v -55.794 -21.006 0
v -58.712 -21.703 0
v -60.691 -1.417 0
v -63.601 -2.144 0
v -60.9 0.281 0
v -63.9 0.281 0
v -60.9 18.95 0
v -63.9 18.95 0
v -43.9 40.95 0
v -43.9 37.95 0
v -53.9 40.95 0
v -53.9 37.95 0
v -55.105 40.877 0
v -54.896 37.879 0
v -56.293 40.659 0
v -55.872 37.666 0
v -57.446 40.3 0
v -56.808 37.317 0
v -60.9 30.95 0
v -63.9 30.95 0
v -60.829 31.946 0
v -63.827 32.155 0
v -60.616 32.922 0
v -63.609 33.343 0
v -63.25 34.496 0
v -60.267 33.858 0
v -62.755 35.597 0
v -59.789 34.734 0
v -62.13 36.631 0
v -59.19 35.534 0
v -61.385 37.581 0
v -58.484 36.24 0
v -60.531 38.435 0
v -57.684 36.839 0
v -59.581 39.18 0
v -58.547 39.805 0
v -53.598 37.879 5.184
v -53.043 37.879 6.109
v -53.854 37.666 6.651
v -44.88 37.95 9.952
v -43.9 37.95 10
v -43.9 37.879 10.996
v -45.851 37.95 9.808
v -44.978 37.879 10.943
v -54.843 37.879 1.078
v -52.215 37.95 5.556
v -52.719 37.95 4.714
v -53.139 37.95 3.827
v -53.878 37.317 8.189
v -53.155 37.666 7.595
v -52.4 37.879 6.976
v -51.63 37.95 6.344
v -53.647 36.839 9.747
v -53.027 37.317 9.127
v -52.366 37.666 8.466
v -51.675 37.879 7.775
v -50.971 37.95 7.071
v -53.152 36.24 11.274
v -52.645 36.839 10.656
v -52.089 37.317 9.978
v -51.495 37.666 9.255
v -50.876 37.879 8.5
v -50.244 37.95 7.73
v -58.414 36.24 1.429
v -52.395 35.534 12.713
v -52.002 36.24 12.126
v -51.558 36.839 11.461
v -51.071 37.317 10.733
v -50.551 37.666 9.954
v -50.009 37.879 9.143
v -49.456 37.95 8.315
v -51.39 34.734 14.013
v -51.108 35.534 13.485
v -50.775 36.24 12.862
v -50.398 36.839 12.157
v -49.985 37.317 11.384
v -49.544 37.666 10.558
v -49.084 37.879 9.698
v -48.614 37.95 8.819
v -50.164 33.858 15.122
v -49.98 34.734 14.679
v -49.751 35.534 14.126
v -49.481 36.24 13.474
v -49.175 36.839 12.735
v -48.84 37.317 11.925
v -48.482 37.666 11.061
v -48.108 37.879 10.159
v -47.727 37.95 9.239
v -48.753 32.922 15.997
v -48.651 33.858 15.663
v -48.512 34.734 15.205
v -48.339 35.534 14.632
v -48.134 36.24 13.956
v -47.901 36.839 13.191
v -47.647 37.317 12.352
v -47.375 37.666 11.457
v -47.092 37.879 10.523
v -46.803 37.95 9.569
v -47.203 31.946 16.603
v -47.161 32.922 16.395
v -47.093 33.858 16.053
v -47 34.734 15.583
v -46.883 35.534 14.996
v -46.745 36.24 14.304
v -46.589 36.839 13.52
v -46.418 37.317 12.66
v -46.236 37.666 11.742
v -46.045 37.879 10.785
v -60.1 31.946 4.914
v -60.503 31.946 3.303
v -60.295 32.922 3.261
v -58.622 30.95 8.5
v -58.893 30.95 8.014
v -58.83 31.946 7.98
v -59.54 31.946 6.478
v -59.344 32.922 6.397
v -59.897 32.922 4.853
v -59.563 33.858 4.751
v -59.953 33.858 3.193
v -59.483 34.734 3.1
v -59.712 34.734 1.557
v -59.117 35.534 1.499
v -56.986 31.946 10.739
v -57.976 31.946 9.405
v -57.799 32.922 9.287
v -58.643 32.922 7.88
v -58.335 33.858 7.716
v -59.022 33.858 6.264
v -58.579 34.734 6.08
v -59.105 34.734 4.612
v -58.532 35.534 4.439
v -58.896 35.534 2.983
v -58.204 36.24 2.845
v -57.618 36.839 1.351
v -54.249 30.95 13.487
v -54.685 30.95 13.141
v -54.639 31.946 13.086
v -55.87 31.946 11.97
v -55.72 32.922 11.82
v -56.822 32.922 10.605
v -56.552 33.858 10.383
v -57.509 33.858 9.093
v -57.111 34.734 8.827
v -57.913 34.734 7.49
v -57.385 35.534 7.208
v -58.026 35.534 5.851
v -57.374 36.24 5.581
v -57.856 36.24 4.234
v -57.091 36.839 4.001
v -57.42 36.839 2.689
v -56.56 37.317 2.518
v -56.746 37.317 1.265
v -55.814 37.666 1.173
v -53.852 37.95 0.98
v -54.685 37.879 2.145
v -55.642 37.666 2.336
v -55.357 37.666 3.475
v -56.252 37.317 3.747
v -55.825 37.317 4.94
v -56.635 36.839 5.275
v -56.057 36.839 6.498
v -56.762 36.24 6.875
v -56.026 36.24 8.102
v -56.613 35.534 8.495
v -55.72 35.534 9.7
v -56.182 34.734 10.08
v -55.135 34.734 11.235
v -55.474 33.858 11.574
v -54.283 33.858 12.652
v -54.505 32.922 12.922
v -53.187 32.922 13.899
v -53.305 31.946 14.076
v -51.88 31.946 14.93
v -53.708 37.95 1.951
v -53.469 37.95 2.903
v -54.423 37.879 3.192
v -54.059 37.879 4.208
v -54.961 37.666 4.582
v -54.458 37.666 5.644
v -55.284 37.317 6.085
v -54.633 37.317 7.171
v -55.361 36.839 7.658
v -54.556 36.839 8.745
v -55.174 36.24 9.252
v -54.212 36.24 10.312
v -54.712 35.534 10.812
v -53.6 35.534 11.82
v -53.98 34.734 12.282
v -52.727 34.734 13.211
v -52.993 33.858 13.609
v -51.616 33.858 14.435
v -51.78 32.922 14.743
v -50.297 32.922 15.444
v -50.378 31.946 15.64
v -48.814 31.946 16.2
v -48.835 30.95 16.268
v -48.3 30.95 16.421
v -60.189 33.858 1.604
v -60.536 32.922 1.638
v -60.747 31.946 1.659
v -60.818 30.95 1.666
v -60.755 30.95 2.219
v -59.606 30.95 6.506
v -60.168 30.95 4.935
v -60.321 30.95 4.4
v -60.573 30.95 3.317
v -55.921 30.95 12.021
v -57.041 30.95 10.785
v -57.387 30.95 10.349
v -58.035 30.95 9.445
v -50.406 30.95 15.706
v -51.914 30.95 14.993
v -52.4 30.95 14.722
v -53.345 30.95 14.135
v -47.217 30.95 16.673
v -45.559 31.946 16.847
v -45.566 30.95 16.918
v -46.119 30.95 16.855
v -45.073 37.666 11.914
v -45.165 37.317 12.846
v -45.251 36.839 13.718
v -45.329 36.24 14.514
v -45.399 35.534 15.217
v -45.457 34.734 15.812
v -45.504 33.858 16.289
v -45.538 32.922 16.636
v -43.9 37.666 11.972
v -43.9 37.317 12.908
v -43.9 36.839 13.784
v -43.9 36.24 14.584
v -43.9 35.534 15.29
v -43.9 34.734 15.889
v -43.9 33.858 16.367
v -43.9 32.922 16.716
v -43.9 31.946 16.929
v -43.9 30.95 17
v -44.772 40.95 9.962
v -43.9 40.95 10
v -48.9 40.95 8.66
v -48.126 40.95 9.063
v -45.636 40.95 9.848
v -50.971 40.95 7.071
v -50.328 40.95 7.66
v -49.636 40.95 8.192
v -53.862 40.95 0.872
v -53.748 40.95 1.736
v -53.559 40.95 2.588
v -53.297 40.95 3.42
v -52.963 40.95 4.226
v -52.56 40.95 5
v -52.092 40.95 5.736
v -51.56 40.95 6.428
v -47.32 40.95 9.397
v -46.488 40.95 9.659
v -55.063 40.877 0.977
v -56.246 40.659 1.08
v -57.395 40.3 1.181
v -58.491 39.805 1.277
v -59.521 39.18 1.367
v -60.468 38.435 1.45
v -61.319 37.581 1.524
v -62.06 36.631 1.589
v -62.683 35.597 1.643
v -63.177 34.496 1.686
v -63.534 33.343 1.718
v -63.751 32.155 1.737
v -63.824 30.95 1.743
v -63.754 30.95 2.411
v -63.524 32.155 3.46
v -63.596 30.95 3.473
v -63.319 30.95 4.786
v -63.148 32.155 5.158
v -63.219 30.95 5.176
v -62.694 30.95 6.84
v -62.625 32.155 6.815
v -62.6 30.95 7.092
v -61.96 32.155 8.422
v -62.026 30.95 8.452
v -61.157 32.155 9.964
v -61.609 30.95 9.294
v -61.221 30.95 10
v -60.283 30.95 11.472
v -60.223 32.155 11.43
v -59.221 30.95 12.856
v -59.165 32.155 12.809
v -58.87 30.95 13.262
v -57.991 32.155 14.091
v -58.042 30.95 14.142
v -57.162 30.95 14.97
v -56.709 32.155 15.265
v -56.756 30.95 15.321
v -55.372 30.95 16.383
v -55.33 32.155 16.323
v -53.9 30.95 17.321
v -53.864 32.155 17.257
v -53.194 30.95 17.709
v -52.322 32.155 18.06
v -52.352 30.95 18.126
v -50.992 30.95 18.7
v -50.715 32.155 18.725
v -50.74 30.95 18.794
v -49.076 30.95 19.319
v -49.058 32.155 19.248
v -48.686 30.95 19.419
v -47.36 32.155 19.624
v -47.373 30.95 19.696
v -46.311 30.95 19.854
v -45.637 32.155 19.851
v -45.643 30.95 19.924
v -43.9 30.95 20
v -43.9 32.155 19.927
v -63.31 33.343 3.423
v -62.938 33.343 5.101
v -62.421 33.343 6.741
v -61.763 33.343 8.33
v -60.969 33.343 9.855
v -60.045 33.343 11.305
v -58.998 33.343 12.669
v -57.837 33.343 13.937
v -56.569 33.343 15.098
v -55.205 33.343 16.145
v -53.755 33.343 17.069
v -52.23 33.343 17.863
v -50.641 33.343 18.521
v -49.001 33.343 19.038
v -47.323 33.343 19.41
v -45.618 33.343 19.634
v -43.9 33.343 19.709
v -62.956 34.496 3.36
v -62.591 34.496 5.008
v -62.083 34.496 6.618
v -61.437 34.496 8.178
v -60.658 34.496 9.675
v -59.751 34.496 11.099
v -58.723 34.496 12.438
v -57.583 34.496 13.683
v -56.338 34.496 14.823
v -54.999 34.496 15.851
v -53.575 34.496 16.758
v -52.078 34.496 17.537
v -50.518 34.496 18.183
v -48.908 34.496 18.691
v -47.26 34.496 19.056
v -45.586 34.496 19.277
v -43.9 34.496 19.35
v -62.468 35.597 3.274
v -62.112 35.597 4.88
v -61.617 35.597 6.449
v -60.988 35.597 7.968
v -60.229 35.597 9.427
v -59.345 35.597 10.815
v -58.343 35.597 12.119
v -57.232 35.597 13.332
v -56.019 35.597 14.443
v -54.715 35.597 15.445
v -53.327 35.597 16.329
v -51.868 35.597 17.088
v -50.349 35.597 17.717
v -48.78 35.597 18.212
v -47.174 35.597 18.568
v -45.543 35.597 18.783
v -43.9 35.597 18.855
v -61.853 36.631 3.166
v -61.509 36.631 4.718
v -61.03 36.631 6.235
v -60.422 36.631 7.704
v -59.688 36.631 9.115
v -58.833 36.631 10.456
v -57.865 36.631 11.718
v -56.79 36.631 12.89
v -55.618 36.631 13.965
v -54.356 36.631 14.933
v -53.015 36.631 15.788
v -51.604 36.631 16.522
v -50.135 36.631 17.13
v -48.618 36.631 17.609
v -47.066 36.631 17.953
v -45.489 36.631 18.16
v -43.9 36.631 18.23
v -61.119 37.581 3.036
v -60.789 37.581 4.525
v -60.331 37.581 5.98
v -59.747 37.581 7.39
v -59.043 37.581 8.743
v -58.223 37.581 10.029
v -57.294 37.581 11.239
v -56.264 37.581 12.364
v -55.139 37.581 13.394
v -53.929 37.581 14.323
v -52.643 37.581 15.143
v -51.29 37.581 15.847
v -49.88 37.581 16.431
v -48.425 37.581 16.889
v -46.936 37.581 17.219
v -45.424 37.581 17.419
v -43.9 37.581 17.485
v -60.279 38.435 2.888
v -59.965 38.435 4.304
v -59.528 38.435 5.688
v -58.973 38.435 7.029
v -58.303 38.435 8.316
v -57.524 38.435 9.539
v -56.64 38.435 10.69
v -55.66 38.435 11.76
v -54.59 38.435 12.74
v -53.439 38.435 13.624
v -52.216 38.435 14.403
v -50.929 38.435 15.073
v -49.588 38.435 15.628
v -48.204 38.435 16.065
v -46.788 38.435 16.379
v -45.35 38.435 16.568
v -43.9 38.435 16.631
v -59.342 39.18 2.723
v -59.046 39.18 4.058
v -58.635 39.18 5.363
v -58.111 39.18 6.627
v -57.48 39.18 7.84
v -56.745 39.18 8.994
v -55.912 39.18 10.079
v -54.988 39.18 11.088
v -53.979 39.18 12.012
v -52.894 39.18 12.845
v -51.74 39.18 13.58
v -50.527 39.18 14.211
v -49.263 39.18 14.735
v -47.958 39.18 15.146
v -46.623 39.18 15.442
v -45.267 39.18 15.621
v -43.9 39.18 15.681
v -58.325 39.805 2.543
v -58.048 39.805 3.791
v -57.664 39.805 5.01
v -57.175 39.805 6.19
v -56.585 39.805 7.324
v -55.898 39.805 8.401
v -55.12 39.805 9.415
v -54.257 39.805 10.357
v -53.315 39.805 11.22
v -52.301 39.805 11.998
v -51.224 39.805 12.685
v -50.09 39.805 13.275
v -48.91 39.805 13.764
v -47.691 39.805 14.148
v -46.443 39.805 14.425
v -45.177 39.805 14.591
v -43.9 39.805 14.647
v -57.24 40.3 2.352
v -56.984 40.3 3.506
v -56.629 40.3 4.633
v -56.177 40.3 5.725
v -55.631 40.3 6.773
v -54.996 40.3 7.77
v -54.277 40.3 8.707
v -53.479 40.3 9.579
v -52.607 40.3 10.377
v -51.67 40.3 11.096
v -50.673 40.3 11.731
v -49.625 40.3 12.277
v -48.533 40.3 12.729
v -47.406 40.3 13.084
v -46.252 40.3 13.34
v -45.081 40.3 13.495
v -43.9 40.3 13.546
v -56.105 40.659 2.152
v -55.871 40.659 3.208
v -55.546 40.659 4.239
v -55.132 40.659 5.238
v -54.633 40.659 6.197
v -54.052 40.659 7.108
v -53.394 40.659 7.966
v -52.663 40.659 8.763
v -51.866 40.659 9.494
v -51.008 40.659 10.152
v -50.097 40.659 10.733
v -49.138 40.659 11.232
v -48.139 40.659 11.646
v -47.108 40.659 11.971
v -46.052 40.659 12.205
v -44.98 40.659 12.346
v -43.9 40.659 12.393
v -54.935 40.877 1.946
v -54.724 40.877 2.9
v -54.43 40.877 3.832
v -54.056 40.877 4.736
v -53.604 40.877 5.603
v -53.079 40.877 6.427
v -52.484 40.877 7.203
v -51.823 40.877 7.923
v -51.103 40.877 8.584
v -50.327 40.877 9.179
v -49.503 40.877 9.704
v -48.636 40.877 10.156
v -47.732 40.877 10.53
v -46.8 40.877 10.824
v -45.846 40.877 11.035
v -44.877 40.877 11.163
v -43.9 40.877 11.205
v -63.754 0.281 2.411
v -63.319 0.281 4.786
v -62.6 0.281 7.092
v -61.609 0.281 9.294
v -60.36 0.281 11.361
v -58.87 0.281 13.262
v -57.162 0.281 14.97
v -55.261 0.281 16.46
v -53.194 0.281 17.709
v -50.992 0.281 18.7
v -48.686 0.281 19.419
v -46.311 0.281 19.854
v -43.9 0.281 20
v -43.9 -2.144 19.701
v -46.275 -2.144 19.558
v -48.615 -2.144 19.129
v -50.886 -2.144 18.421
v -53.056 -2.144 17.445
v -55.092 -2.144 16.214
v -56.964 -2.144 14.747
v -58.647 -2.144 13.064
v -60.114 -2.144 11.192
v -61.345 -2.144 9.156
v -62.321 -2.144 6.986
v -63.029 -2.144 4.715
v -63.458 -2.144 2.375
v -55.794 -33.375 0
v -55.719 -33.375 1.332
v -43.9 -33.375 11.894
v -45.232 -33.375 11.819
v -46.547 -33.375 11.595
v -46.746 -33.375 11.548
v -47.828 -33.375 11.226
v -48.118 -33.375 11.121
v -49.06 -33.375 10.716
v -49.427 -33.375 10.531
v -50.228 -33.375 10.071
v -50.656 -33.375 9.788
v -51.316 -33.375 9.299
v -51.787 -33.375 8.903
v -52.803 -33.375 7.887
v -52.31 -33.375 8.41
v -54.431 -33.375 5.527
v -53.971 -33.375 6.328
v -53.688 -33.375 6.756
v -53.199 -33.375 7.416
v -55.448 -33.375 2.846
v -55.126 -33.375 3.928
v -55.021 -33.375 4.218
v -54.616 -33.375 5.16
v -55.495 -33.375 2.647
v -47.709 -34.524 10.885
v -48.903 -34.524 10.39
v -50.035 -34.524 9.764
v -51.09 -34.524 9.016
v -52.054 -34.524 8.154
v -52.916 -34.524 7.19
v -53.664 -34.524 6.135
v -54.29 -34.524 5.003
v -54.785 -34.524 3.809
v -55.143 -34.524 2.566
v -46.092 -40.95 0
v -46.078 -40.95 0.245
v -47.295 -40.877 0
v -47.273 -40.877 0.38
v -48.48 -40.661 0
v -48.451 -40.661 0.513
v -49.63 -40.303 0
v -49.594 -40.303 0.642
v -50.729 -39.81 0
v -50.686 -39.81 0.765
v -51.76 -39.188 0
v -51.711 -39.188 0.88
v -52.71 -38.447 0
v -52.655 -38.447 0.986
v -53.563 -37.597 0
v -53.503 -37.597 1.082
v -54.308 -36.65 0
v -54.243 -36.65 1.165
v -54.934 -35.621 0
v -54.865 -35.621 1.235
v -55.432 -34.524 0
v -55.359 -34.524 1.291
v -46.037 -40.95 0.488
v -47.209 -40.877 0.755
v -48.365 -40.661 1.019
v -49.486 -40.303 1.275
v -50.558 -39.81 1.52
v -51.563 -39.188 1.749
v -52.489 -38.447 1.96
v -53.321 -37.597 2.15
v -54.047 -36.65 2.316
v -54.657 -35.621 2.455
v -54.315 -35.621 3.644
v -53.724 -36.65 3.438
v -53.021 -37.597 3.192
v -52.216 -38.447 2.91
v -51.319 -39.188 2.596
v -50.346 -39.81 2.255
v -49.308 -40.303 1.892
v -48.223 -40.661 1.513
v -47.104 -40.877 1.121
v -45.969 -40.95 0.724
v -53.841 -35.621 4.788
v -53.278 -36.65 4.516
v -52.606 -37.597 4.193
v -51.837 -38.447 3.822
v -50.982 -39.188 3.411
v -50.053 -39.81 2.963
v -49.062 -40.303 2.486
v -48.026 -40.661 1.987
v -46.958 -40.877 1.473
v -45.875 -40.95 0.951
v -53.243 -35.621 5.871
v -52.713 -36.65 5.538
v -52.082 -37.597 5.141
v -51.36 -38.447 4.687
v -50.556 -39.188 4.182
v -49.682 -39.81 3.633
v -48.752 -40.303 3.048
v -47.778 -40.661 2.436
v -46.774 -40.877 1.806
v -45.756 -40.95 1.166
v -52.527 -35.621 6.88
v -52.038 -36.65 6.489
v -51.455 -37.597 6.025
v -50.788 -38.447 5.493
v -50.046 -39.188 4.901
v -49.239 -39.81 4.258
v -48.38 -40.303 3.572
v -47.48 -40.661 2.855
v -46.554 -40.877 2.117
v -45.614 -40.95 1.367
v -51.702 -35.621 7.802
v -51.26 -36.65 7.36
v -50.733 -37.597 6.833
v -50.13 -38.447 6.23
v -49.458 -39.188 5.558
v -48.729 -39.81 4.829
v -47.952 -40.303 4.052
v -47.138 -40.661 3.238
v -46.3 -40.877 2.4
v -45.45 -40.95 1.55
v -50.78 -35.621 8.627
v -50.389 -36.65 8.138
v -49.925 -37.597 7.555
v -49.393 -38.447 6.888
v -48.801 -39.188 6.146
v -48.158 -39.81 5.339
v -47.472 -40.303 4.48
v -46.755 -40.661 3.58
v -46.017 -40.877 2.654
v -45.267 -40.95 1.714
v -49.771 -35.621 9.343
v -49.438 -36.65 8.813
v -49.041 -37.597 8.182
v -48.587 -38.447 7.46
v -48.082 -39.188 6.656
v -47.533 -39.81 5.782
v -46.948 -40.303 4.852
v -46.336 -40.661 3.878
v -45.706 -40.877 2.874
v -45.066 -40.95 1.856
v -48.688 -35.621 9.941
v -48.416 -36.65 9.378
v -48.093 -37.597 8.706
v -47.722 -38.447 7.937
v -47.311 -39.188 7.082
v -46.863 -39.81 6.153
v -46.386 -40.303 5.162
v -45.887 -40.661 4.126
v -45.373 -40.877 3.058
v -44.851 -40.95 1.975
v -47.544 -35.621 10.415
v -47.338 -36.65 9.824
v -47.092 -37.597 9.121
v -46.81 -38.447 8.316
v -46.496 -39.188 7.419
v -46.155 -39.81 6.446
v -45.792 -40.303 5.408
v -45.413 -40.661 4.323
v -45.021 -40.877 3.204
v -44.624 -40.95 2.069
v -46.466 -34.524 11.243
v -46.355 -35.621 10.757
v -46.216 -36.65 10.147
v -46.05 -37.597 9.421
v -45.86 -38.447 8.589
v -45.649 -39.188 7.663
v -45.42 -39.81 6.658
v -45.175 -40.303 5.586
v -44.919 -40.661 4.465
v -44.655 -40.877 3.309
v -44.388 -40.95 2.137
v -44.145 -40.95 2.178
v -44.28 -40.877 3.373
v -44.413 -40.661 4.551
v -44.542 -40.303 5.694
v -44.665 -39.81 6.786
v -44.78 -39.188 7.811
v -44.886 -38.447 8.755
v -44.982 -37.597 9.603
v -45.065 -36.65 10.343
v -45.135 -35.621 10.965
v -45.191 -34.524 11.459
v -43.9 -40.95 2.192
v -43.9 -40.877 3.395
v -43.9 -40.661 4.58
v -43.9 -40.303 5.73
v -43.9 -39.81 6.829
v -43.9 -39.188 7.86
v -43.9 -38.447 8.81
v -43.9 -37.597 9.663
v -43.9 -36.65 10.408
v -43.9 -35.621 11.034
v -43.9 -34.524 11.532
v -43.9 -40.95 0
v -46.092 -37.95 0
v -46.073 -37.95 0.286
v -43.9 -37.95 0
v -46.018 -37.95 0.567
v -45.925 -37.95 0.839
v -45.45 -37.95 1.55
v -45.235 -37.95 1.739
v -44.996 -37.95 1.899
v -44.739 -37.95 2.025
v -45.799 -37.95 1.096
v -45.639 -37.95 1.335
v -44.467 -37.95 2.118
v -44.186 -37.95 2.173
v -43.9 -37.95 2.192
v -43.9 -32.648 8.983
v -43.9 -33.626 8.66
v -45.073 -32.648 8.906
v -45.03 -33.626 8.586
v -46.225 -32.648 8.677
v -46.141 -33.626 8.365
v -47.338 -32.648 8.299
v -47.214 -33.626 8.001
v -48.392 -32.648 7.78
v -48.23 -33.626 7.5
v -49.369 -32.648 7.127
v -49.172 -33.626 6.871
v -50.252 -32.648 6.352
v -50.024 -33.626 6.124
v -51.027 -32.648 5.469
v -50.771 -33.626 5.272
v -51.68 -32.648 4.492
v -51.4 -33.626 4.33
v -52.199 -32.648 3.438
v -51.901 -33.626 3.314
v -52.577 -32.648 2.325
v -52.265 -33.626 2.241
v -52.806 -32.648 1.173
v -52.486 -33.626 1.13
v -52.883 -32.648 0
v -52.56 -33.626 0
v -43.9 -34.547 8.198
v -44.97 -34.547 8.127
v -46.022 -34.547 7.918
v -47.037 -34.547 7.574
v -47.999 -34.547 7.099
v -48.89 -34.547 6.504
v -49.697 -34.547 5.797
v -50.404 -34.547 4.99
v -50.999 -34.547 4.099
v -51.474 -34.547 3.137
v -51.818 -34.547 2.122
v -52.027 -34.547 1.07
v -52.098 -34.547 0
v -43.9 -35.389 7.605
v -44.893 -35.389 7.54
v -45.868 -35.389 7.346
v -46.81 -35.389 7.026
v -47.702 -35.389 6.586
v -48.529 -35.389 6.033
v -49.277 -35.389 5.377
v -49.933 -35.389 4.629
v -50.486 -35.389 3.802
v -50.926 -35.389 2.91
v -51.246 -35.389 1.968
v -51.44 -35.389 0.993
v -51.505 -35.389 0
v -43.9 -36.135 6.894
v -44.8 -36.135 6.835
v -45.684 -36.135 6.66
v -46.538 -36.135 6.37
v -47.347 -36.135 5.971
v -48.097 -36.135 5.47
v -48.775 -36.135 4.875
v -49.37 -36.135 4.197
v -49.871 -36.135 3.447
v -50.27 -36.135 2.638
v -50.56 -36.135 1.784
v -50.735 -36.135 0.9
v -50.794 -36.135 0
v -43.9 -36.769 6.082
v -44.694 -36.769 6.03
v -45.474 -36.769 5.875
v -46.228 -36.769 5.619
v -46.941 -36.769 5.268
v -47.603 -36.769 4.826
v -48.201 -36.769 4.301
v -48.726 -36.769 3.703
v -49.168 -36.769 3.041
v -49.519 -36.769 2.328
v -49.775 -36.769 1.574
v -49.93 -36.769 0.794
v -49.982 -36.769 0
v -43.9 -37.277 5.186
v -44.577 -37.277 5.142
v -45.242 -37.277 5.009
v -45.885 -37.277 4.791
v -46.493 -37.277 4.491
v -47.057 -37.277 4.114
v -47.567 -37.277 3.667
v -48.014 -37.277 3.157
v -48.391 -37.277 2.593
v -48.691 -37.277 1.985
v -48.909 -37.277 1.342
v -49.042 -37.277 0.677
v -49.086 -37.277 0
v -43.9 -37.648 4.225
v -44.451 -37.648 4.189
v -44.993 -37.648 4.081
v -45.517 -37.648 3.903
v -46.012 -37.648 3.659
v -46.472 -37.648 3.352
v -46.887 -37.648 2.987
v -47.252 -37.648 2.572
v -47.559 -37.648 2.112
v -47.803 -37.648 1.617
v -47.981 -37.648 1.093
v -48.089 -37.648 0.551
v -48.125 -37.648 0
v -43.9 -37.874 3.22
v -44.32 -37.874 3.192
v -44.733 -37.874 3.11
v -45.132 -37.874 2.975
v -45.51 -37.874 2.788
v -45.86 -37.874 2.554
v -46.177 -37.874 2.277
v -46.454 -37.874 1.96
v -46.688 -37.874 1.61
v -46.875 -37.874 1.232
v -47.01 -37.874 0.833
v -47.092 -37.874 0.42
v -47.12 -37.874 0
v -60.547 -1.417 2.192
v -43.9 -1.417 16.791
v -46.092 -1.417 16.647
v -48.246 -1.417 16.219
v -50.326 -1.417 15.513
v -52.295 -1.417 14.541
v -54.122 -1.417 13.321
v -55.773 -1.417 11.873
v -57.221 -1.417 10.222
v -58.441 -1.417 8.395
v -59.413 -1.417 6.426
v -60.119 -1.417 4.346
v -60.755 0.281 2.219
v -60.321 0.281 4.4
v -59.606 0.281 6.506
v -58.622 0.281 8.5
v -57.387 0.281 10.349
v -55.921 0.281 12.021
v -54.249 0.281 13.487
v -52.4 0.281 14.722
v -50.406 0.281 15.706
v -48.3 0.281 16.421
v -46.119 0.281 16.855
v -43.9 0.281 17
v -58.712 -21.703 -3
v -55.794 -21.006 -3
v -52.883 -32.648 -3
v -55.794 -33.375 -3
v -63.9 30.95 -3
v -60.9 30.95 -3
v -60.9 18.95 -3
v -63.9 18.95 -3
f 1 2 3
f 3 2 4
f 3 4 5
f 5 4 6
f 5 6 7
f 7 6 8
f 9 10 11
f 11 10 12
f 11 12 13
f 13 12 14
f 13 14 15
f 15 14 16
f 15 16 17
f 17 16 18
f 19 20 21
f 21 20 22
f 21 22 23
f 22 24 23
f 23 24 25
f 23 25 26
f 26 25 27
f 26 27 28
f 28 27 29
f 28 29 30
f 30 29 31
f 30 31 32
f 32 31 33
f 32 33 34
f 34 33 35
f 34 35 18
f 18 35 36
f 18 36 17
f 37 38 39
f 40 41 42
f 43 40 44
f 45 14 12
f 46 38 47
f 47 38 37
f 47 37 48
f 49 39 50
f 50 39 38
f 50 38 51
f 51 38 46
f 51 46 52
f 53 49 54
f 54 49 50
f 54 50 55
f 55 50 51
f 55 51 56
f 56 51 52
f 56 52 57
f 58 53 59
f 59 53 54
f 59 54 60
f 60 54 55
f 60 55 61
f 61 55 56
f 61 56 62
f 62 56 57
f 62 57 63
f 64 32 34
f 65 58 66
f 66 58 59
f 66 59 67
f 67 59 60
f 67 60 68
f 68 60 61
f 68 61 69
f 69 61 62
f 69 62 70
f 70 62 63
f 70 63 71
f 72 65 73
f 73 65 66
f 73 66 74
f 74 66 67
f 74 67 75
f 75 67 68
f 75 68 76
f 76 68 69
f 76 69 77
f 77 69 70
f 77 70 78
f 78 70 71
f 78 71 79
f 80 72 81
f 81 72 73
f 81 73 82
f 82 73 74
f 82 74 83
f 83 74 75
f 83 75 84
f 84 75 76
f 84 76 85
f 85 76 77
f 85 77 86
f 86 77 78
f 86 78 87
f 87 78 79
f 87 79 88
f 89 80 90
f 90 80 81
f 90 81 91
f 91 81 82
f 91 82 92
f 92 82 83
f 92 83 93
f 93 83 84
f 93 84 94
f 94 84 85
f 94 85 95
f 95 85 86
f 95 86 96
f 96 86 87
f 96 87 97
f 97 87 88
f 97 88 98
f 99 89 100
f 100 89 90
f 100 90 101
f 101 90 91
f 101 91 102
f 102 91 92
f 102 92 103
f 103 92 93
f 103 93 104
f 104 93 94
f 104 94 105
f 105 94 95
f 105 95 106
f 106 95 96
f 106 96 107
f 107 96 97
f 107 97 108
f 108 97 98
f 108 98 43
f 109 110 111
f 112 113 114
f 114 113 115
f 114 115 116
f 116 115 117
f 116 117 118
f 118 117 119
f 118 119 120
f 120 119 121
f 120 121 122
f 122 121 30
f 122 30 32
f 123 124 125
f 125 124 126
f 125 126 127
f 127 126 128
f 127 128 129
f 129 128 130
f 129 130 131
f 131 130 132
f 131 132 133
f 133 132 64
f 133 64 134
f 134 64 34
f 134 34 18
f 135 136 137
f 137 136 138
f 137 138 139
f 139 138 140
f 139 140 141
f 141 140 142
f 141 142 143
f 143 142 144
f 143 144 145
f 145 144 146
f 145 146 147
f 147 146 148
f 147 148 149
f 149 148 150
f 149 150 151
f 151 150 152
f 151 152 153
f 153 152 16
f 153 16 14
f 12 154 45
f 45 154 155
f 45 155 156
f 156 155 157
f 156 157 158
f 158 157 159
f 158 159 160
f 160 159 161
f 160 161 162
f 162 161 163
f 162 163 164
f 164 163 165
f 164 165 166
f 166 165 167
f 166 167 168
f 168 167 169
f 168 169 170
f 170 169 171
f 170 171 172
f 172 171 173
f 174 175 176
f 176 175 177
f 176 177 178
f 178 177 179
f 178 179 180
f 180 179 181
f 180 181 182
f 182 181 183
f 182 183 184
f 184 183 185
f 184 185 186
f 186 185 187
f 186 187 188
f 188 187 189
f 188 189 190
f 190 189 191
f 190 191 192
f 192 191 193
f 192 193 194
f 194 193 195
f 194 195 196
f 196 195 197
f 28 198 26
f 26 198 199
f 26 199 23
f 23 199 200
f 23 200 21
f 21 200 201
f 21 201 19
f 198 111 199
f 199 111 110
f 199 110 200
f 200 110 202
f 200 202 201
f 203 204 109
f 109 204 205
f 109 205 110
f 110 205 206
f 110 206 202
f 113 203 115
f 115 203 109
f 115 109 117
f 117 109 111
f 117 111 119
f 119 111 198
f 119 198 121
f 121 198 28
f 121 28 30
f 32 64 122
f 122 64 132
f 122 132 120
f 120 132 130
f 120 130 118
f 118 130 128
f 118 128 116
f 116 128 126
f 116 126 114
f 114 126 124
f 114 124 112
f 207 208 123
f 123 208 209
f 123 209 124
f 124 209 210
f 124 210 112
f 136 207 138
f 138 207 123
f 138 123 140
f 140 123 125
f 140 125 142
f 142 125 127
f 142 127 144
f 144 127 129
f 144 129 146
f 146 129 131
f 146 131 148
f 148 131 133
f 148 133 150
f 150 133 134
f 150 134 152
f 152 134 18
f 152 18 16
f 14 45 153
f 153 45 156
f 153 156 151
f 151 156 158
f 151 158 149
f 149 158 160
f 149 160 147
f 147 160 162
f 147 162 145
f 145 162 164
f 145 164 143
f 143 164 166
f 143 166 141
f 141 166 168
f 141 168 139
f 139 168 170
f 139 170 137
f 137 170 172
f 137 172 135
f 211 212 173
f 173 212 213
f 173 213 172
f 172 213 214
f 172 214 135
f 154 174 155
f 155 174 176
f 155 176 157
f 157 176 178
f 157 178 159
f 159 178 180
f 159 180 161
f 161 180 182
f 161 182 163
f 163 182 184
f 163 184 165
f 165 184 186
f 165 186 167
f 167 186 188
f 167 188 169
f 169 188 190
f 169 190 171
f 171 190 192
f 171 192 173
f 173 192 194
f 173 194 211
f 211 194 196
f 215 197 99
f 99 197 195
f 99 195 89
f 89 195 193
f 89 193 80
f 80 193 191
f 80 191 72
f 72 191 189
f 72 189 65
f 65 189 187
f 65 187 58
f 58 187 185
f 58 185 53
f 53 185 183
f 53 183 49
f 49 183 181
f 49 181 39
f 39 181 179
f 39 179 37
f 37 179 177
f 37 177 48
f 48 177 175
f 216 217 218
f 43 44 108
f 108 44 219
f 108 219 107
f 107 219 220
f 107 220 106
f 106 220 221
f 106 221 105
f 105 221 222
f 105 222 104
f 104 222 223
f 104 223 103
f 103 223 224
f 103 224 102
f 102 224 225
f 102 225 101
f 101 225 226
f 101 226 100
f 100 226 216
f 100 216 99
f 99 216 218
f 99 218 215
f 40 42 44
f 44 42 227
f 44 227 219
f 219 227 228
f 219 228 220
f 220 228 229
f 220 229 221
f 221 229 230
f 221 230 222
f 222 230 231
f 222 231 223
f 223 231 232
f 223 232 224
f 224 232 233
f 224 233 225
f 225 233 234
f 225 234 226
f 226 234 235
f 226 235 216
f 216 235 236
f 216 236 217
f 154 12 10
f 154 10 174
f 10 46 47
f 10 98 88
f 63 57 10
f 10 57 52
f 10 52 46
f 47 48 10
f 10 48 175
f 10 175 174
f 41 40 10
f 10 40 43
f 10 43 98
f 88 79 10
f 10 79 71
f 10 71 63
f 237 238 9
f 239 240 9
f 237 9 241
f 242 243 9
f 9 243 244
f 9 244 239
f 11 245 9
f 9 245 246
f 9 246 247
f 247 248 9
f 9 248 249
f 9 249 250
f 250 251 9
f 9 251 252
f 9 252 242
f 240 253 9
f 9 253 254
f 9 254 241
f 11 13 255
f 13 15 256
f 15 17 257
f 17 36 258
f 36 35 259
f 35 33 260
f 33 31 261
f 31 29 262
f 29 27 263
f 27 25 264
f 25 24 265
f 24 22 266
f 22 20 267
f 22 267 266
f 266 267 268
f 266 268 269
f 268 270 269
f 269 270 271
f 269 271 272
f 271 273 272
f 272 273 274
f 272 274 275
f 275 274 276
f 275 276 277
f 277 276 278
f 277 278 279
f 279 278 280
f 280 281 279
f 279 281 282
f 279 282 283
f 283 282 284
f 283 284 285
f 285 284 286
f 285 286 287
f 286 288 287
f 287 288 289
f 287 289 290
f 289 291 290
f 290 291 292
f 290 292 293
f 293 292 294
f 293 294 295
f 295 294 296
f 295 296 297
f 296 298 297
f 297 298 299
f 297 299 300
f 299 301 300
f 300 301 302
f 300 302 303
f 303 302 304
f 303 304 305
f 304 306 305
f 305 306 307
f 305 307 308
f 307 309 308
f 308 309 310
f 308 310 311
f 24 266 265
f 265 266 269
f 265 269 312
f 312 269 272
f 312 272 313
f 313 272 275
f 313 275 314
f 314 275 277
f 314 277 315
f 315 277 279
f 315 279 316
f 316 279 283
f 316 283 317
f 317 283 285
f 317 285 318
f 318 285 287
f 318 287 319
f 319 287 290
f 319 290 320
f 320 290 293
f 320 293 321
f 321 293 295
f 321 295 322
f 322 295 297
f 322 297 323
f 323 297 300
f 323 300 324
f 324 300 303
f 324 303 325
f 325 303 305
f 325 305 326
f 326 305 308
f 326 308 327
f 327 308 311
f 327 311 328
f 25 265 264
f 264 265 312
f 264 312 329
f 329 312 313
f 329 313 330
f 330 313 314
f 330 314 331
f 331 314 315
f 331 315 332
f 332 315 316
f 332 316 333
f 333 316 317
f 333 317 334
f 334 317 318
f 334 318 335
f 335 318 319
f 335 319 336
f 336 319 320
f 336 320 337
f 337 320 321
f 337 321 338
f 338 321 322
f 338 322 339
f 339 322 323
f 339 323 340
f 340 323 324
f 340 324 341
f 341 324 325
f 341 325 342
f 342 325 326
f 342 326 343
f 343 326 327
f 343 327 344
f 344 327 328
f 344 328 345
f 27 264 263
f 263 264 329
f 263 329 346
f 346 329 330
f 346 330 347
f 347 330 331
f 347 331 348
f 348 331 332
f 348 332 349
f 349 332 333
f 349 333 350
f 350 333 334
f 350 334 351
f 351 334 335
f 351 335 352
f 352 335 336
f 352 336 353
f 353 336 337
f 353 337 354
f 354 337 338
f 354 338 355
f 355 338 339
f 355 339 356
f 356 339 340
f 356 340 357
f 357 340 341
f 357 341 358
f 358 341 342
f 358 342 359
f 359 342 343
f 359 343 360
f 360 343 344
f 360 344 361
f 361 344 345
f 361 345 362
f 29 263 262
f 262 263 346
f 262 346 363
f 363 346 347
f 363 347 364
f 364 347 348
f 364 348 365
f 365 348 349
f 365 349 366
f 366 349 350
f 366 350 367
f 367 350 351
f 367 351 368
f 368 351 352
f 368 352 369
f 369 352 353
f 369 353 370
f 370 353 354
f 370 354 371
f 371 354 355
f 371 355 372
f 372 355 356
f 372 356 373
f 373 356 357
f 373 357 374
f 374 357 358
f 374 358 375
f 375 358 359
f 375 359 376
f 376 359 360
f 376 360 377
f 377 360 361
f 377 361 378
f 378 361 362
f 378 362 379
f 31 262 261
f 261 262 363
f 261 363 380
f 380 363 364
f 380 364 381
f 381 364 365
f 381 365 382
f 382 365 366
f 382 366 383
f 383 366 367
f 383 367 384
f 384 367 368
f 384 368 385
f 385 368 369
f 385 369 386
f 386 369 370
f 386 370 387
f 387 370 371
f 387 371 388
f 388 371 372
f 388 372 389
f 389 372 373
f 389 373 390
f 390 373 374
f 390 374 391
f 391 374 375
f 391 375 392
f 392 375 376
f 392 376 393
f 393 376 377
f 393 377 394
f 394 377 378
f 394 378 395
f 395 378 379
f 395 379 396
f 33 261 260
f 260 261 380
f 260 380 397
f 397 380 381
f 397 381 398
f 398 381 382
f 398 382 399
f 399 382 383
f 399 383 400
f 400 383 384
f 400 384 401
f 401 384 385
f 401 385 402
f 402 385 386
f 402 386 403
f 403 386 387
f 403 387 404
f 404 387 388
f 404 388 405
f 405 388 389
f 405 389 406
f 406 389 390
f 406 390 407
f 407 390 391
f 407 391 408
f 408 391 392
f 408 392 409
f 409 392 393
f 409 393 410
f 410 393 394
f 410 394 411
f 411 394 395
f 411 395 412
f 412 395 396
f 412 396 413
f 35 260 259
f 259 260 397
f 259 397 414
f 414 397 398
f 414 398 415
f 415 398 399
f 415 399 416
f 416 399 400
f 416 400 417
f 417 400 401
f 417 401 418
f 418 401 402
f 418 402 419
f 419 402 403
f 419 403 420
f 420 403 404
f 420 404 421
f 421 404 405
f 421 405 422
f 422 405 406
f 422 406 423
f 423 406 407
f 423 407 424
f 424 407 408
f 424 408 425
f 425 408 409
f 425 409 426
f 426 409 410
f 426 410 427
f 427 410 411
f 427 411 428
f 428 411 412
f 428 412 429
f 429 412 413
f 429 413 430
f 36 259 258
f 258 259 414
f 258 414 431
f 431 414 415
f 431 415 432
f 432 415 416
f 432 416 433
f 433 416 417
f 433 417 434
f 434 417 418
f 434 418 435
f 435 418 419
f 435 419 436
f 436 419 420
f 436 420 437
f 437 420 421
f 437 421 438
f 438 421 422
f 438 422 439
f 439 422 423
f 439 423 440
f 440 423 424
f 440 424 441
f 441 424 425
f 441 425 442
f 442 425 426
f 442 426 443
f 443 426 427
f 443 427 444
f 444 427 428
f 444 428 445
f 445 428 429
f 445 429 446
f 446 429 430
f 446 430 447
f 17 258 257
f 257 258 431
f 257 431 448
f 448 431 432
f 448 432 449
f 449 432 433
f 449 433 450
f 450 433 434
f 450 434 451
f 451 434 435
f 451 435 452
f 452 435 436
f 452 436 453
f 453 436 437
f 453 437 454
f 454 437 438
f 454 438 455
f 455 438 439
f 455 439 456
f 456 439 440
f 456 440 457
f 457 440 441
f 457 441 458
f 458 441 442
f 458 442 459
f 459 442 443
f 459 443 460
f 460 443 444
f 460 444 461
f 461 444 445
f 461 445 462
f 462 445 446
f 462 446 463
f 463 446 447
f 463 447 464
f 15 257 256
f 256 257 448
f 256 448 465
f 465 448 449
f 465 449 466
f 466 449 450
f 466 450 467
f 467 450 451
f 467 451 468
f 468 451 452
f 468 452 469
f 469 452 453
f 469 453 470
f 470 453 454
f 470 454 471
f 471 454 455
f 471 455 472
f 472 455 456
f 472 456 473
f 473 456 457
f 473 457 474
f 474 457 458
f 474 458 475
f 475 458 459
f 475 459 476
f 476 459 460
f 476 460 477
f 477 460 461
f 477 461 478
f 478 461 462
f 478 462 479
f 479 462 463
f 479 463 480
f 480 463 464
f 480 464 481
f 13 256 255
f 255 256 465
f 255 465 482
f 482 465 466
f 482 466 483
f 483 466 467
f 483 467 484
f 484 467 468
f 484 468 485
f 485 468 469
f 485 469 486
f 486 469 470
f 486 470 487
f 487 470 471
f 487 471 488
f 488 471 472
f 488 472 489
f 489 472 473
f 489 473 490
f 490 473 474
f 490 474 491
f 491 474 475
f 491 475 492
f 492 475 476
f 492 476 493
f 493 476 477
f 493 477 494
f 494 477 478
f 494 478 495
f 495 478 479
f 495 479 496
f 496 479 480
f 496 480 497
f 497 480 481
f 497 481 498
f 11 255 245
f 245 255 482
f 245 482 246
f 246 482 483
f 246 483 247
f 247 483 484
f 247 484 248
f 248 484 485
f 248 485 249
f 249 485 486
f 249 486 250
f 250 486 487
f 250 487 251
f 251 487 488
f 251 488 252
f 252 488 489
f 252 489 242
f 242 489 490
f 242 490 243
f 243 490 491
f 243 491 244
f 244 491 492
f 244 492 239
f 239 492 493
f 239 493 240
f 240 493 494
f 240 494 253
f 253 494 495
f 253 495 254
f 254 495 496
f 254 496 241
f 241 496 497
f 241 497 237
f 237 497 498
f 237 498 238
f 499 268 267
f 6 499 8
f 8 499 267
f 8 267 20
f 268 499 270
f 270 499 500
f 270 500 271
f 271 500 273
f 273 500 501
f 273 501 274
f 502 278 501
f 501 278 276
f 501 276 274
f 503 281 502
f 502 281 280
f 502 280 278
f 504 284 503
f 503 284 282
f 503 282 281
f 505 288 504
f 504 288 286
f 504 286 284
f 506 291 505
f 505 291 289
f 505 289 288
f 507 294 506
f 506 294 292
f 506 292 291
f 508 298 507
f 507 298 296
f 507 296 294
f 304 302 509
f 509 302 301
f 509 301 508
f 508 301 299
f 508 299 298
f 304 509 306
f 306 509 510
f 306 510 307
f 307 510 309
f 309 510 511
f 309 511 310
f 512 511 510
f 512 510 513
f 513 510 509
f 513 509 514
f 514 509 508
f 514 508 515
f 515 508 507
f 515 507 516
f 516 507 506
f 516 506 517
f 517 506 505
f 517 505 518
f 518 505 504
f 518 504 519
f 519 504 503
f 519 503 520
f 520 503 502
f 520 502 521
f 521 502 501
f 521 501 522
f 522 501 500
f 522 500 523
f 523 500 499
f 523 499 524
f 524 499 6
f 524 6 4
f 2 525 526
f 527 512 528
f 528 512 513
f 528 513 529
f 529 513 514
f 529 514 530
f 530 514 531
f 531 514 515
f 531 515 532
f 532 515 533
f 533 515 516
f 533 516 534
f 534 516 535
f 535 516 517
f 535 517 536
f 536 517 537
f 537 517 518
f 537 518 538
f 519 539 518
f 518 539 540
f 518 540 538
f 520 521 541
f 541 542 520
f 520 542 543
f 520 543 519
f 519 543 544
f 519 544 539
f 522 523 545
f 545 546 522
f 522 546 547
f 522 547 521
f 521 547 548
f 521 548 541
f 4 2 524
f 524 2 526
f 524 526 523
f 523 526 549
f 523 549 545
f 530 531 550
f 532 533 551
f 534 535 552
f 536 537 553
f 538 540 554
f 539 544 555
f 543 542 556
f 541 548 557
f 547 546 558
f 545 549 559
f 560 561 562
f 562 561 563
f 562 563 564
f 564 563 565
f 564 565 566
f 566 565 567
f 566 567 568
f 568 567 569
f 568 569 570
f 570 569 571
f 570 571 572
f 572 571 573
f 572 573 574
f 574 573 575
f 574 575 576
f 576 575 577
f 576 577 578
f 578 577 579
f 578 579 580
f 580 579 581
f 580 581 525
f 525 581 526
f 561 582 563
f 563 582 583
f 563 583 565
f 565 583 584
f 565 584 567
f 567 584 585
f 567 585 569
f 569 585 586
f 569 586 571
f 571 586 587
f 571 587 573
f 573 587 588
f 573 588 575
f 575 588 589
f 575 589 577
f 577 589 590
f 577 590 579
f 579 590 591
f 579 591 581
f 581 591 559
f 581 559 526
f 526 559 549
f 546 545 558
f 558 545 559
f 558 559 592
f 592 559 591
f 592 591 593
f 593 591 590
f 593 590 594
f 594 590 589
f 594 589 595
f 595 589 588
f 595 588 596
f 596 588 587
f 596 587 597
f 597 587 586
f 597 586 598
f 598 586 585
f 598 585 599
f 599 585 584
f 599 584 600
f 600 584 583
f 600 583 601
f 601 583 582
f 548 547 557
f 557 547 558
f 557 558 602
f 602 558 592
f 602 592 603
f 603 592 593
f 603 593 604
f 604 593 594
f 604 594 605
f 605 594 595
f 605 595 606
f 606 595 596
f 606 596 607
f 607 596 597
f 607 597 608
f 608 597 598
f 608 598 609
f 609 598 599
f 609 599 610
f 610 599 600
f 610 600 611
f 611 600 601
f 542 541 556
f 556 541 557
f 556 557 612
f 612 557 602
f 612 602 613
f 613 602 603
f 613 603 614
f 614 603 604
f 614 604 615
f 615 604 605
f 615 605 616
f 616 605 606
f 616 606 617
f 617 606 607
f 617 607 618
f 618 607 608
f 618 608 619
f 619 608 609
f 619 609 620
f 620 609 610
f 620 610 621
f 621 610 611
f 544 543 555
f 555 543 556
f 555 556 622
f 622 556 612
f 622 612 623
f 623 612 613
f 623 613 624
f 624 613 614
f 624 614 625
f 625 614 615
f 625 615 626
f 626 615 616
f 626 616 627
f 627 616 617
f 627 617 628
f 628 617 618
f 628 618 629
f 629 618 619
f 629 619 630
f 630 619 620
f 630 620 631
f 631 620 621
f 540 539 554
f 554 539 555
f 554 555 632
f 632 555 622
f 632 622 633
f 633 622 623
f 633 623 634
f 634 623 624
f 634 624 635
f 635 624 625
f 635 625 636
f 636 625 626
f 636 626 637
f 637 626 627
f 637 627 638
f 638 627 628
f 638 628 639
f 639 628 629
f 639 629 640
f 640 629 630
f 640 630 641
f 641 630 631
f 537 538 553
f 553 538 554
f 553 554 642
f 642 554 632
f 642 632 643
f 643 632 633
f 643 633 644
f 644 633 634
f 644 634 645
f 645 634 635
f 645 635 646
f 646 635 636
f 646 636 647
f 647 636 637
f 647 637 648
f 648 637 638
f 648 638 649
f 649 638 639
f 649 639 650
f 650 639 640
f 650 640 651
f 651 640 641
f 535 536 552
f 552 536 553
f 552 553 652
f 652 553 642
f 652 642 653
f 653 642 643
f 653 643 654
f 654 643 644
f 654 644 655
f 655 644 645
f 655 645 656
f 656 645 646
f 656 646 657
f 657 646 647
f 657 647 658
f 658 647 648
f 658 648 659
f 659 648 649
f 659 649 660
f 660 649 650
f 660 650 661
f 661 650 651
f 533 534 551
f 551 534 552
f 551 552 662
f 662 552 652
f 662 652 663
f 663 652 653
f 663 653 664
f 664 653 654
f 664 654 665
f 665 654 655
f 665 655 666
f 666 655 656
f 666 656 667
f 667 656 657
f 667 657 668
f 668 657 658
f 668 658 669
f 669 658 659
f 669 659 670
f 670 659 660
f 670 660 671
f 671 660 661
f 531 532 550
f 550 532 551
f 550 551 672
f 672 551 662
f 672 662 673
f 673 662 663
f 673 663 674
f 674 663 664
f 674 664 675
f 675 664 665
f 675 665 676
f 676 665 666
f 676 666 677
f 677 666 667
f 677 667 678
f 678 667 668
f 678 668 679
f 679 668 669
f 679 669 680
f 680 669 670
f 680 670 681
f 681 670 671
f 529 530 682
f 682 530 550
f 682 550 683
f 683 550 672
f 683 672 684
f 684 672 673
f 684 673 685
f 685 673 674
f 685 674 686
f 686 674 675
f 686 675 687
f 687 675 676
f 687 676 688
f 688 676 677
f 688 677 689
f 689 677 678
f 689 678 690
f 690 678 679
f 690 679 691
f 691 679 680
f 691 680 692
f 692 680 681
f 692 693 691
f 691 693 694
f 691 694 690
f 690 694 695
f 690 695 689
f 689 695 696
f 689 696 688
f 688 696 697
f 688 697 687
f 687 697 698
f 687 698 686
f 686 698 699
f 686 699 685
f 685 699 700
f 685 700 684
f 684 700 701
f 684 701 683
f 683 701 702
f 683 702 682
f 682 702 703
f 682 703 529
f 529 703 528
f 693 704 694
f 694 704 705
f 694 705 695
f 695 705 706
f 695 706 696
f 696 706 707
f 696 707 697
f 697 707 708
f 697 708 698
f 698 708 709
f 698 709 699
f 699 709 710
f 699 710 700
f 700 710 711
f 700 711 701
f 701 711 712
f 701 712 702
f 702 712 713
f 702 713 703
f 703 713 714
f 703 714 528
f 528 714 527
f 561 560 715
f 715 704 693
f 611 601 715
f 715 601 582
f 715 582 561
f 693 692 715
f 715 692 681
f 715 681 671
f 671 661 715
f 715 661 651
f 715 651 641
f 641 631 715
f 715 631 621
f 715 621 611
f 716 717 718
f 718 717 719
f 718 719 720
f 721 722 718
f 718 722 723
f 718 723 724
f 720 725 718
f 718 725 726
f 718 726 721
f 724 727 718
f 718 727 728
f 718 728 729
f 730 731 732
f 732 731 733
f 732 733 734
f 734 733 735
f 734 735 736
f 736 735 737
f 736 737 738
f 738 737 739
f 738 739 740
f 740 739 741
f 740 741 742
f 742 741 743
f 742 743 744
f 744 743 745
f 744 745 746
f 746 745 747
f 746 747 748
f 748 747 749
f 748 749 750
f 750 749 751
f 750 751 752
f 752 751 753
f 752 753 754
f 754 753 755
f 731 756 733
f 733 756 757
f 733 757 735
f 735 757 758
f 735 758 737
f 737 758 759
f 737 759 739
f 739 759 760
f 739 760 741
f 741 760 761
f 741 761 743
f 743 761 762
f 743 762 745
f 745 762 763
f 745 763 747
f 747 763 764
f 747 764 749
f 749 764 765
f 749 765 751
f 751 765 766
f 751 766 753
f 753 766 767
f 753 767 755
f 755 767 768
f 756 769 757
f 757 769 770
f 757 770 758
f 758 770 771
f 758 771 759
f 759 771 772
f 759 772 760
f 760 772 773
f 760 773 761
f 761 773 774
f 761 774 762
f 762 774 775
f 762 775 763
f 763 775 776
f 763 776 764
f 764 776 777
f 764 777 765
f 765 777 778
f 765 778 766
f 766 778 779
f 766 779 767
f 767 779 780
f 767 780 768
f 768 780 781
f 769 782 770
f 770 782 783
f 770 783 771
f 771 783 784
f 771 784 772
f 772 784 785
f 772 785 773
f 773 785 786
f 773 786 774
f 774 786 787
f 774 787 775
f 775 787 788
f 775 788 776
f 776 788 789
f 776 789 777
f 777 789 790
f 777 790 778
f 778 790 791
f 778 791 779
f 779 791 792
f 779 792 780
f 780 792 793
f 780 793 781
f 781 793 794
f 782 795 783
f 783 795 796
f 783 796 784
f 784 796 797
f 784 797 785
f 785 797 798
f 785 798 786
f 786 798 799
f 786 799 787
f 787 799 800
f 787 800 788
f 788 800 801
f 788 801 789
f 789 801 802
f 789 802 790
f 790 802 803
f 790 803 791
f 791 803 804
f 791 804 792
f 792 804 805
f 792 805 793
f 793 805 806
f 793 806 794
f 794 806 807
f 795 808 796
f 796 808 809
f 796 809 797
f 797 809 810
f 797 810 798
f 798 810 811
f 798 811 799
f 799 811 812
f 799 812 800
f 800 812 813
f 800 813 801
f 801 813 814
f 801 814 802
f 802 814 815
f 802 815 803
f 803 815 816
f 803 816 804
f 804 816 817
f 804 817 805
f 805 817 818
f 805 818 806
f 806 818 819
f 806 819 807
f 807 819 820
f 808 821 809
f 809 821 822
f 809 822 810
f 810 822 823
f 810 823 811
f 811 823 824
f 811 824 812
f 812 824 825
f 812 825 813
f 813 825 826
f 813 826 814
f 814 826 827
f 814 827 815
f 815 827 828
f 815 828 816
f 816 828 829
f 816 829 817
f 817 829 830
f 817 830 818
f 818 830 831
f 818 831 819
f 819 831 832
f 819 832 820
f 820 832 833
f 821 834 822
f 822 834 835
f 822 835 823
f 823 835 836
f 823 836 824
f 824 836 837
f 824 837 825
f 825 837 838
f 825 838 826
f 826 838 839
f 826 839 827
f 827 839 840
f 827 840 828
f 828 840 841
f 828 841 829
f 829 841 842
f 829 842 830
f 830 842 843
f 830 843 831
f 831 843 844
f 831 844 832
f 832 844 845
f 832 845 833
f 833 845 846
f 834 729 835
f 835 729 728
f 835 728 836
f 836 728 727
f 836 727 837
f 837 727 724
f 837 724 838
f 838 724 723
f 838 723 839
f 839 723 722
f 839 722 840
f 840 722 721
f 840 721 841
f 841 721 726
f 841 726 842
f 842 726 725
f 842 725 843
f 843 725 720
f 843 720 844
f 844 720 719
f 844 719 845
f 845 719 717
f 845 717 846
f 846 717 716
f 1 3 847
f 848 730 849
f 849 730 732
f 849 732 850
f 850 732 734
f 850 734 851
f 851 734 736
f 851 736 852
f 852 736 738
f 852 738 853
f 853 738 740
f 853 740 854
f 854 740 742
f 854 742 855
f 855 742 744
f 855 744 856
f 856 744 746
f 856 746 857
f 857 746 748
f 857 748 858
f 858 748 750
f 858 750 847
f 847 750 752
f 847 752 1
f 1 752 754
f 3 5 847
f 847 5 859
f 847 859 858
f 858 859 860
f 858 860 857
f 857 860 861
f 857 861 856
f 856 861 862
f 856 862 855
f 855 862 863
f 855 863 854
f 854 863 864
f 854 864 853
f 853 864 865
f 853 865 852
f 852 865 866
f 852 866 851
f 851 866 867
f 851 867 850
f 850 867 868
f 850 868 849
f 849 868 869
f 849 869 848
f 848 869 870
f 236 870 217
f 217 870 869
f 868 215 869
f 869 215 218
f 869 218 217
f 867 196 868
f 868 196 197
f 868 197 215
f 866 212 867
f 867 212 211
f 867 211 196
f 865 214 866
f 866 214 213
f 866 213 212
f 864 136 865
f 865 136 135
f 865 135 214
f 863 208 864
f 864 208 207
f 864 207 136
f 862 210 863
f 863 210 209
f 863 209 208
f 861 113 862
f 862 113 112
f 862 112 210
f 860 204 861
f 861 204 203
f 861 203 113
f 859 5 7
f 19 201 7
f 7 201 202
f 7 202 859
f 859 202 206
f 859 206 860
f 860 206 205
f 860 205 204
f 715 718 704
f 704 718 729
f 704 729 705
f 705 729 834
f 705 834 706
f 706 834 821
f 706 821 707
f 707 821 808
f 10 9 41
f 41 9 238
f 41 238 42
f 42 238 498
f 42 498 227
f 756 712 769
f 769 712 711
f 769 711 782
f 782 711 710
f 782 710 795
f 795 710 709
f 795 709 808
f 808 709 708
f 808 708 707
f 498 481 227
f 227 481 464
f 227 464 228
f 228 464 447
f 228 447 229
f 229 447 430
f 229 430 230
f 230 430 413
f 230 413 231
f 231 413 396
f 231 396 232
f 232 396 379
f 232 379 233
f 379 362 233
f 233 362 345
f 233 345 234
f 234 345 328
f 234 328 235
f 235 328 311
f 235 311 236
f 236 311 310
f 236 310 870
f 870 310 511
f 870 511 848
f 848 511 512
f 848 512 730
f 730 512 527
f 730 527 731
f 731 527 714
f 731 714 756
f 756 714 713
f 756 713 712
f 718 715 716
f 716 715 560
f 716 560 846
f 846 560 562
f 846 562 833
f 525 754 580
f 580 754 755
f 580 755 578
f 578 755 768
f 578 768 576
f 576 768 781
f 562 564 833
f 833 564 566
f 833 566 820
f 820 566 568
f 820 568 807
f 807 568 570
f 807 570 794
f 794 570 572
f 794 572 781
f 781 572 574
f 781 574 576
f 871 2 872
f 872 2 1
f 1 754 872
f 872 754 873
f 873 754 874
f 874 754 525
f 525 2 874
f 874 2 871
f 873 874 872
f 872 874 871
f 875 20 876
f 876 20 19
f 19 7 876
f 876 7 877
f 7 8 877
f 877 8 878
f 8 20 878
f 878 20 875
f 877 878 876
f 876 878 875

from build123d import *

# Parameters (mm, degrees)
REVOLVE2_ANGLE      = 90
SKETCH3_W           = 3
SKETCH3_H           = 12
BOSS_EXTRUDE1_DEPTH = 3


with BuildPart() as part:
    # Sketch1 → Revolve2 (revolve)
    with BuildSketch(Plane.XY):
        with BuildLine():
            Line((-55.793660937, -33.37535625), (-63.601425001, -2.144299994))
            Line((-63.601425001, -2.144299994), (-63.9, 0.281056256))
            Line((-63.9, 0.281056256), (-63.9, 30.95))
            ThreePointArc((-63.9, 30.95), (-60.971067812, 38.021067812), (-53.9, 40.95))
            Line((-53.9, 40.95), (-43.9, 40.95))
            Line((-43.9, 40.95), (-43.9, 37.95))
            Line((-43.9, 37.95), (-53.9, 37.95))
            ThreePointArc((-53.9, 37.95), (-58.849747468, 35.899747468), (-60.9, 30.95))
            Line((-60.9, 30.95), (-60.9, 0.281056256))
            Line((-60.9, 0.281056256), (-60.690997501, -1.416693119))
            Line((-60.690997501, -1.416693119), (-55.793660937, -21.006039374))
            Line((-55.793660937, -21.006039374), (-52.883233437, -32.647749375))
            ThreePointArc((-52.883233437, -32.647749375), (-50.400121402, -36.467438066), (-46.092235936, -37.95))
            Line((-46.092235936, -37.95), (-43.9, -37.95))
            Line((-43.9, -37.95), (-43.9, -40.95))
            Line((-43.9, -40.95), (-46.092235936, -40.95))
            ThreePointArc((-46.092235936, -40.95), (-52.24635803, -38.83205438), (-55.793660937, -33.37535625))
        make_face()
    revolve(axis=Axis((-43.9, 40.95, 0), (0, 1, 0)), revolution_arc=REVOLVE2_ANGLE)

    # Sketch3 → Boss-Extrude1 (add)
    with BuildSketch(Plane(origin=(0, 0, 0), x_dir=(-1, 0, 0), z_dir=(0, 0, -1))):
        Polygon((55.793660937, -33.37535625), (58.711666985, -21.70333206), (55.793660937, -21.006039374), (52.883233437, -32.647749375), align=None)
        with Locations((62.4, 24.95)):
            Rectangle(SKETCH3_W, SKETCH3_H)
    extrude(amount=BOSS_EXTRUDE1_DEPTH)


solid = part.part
